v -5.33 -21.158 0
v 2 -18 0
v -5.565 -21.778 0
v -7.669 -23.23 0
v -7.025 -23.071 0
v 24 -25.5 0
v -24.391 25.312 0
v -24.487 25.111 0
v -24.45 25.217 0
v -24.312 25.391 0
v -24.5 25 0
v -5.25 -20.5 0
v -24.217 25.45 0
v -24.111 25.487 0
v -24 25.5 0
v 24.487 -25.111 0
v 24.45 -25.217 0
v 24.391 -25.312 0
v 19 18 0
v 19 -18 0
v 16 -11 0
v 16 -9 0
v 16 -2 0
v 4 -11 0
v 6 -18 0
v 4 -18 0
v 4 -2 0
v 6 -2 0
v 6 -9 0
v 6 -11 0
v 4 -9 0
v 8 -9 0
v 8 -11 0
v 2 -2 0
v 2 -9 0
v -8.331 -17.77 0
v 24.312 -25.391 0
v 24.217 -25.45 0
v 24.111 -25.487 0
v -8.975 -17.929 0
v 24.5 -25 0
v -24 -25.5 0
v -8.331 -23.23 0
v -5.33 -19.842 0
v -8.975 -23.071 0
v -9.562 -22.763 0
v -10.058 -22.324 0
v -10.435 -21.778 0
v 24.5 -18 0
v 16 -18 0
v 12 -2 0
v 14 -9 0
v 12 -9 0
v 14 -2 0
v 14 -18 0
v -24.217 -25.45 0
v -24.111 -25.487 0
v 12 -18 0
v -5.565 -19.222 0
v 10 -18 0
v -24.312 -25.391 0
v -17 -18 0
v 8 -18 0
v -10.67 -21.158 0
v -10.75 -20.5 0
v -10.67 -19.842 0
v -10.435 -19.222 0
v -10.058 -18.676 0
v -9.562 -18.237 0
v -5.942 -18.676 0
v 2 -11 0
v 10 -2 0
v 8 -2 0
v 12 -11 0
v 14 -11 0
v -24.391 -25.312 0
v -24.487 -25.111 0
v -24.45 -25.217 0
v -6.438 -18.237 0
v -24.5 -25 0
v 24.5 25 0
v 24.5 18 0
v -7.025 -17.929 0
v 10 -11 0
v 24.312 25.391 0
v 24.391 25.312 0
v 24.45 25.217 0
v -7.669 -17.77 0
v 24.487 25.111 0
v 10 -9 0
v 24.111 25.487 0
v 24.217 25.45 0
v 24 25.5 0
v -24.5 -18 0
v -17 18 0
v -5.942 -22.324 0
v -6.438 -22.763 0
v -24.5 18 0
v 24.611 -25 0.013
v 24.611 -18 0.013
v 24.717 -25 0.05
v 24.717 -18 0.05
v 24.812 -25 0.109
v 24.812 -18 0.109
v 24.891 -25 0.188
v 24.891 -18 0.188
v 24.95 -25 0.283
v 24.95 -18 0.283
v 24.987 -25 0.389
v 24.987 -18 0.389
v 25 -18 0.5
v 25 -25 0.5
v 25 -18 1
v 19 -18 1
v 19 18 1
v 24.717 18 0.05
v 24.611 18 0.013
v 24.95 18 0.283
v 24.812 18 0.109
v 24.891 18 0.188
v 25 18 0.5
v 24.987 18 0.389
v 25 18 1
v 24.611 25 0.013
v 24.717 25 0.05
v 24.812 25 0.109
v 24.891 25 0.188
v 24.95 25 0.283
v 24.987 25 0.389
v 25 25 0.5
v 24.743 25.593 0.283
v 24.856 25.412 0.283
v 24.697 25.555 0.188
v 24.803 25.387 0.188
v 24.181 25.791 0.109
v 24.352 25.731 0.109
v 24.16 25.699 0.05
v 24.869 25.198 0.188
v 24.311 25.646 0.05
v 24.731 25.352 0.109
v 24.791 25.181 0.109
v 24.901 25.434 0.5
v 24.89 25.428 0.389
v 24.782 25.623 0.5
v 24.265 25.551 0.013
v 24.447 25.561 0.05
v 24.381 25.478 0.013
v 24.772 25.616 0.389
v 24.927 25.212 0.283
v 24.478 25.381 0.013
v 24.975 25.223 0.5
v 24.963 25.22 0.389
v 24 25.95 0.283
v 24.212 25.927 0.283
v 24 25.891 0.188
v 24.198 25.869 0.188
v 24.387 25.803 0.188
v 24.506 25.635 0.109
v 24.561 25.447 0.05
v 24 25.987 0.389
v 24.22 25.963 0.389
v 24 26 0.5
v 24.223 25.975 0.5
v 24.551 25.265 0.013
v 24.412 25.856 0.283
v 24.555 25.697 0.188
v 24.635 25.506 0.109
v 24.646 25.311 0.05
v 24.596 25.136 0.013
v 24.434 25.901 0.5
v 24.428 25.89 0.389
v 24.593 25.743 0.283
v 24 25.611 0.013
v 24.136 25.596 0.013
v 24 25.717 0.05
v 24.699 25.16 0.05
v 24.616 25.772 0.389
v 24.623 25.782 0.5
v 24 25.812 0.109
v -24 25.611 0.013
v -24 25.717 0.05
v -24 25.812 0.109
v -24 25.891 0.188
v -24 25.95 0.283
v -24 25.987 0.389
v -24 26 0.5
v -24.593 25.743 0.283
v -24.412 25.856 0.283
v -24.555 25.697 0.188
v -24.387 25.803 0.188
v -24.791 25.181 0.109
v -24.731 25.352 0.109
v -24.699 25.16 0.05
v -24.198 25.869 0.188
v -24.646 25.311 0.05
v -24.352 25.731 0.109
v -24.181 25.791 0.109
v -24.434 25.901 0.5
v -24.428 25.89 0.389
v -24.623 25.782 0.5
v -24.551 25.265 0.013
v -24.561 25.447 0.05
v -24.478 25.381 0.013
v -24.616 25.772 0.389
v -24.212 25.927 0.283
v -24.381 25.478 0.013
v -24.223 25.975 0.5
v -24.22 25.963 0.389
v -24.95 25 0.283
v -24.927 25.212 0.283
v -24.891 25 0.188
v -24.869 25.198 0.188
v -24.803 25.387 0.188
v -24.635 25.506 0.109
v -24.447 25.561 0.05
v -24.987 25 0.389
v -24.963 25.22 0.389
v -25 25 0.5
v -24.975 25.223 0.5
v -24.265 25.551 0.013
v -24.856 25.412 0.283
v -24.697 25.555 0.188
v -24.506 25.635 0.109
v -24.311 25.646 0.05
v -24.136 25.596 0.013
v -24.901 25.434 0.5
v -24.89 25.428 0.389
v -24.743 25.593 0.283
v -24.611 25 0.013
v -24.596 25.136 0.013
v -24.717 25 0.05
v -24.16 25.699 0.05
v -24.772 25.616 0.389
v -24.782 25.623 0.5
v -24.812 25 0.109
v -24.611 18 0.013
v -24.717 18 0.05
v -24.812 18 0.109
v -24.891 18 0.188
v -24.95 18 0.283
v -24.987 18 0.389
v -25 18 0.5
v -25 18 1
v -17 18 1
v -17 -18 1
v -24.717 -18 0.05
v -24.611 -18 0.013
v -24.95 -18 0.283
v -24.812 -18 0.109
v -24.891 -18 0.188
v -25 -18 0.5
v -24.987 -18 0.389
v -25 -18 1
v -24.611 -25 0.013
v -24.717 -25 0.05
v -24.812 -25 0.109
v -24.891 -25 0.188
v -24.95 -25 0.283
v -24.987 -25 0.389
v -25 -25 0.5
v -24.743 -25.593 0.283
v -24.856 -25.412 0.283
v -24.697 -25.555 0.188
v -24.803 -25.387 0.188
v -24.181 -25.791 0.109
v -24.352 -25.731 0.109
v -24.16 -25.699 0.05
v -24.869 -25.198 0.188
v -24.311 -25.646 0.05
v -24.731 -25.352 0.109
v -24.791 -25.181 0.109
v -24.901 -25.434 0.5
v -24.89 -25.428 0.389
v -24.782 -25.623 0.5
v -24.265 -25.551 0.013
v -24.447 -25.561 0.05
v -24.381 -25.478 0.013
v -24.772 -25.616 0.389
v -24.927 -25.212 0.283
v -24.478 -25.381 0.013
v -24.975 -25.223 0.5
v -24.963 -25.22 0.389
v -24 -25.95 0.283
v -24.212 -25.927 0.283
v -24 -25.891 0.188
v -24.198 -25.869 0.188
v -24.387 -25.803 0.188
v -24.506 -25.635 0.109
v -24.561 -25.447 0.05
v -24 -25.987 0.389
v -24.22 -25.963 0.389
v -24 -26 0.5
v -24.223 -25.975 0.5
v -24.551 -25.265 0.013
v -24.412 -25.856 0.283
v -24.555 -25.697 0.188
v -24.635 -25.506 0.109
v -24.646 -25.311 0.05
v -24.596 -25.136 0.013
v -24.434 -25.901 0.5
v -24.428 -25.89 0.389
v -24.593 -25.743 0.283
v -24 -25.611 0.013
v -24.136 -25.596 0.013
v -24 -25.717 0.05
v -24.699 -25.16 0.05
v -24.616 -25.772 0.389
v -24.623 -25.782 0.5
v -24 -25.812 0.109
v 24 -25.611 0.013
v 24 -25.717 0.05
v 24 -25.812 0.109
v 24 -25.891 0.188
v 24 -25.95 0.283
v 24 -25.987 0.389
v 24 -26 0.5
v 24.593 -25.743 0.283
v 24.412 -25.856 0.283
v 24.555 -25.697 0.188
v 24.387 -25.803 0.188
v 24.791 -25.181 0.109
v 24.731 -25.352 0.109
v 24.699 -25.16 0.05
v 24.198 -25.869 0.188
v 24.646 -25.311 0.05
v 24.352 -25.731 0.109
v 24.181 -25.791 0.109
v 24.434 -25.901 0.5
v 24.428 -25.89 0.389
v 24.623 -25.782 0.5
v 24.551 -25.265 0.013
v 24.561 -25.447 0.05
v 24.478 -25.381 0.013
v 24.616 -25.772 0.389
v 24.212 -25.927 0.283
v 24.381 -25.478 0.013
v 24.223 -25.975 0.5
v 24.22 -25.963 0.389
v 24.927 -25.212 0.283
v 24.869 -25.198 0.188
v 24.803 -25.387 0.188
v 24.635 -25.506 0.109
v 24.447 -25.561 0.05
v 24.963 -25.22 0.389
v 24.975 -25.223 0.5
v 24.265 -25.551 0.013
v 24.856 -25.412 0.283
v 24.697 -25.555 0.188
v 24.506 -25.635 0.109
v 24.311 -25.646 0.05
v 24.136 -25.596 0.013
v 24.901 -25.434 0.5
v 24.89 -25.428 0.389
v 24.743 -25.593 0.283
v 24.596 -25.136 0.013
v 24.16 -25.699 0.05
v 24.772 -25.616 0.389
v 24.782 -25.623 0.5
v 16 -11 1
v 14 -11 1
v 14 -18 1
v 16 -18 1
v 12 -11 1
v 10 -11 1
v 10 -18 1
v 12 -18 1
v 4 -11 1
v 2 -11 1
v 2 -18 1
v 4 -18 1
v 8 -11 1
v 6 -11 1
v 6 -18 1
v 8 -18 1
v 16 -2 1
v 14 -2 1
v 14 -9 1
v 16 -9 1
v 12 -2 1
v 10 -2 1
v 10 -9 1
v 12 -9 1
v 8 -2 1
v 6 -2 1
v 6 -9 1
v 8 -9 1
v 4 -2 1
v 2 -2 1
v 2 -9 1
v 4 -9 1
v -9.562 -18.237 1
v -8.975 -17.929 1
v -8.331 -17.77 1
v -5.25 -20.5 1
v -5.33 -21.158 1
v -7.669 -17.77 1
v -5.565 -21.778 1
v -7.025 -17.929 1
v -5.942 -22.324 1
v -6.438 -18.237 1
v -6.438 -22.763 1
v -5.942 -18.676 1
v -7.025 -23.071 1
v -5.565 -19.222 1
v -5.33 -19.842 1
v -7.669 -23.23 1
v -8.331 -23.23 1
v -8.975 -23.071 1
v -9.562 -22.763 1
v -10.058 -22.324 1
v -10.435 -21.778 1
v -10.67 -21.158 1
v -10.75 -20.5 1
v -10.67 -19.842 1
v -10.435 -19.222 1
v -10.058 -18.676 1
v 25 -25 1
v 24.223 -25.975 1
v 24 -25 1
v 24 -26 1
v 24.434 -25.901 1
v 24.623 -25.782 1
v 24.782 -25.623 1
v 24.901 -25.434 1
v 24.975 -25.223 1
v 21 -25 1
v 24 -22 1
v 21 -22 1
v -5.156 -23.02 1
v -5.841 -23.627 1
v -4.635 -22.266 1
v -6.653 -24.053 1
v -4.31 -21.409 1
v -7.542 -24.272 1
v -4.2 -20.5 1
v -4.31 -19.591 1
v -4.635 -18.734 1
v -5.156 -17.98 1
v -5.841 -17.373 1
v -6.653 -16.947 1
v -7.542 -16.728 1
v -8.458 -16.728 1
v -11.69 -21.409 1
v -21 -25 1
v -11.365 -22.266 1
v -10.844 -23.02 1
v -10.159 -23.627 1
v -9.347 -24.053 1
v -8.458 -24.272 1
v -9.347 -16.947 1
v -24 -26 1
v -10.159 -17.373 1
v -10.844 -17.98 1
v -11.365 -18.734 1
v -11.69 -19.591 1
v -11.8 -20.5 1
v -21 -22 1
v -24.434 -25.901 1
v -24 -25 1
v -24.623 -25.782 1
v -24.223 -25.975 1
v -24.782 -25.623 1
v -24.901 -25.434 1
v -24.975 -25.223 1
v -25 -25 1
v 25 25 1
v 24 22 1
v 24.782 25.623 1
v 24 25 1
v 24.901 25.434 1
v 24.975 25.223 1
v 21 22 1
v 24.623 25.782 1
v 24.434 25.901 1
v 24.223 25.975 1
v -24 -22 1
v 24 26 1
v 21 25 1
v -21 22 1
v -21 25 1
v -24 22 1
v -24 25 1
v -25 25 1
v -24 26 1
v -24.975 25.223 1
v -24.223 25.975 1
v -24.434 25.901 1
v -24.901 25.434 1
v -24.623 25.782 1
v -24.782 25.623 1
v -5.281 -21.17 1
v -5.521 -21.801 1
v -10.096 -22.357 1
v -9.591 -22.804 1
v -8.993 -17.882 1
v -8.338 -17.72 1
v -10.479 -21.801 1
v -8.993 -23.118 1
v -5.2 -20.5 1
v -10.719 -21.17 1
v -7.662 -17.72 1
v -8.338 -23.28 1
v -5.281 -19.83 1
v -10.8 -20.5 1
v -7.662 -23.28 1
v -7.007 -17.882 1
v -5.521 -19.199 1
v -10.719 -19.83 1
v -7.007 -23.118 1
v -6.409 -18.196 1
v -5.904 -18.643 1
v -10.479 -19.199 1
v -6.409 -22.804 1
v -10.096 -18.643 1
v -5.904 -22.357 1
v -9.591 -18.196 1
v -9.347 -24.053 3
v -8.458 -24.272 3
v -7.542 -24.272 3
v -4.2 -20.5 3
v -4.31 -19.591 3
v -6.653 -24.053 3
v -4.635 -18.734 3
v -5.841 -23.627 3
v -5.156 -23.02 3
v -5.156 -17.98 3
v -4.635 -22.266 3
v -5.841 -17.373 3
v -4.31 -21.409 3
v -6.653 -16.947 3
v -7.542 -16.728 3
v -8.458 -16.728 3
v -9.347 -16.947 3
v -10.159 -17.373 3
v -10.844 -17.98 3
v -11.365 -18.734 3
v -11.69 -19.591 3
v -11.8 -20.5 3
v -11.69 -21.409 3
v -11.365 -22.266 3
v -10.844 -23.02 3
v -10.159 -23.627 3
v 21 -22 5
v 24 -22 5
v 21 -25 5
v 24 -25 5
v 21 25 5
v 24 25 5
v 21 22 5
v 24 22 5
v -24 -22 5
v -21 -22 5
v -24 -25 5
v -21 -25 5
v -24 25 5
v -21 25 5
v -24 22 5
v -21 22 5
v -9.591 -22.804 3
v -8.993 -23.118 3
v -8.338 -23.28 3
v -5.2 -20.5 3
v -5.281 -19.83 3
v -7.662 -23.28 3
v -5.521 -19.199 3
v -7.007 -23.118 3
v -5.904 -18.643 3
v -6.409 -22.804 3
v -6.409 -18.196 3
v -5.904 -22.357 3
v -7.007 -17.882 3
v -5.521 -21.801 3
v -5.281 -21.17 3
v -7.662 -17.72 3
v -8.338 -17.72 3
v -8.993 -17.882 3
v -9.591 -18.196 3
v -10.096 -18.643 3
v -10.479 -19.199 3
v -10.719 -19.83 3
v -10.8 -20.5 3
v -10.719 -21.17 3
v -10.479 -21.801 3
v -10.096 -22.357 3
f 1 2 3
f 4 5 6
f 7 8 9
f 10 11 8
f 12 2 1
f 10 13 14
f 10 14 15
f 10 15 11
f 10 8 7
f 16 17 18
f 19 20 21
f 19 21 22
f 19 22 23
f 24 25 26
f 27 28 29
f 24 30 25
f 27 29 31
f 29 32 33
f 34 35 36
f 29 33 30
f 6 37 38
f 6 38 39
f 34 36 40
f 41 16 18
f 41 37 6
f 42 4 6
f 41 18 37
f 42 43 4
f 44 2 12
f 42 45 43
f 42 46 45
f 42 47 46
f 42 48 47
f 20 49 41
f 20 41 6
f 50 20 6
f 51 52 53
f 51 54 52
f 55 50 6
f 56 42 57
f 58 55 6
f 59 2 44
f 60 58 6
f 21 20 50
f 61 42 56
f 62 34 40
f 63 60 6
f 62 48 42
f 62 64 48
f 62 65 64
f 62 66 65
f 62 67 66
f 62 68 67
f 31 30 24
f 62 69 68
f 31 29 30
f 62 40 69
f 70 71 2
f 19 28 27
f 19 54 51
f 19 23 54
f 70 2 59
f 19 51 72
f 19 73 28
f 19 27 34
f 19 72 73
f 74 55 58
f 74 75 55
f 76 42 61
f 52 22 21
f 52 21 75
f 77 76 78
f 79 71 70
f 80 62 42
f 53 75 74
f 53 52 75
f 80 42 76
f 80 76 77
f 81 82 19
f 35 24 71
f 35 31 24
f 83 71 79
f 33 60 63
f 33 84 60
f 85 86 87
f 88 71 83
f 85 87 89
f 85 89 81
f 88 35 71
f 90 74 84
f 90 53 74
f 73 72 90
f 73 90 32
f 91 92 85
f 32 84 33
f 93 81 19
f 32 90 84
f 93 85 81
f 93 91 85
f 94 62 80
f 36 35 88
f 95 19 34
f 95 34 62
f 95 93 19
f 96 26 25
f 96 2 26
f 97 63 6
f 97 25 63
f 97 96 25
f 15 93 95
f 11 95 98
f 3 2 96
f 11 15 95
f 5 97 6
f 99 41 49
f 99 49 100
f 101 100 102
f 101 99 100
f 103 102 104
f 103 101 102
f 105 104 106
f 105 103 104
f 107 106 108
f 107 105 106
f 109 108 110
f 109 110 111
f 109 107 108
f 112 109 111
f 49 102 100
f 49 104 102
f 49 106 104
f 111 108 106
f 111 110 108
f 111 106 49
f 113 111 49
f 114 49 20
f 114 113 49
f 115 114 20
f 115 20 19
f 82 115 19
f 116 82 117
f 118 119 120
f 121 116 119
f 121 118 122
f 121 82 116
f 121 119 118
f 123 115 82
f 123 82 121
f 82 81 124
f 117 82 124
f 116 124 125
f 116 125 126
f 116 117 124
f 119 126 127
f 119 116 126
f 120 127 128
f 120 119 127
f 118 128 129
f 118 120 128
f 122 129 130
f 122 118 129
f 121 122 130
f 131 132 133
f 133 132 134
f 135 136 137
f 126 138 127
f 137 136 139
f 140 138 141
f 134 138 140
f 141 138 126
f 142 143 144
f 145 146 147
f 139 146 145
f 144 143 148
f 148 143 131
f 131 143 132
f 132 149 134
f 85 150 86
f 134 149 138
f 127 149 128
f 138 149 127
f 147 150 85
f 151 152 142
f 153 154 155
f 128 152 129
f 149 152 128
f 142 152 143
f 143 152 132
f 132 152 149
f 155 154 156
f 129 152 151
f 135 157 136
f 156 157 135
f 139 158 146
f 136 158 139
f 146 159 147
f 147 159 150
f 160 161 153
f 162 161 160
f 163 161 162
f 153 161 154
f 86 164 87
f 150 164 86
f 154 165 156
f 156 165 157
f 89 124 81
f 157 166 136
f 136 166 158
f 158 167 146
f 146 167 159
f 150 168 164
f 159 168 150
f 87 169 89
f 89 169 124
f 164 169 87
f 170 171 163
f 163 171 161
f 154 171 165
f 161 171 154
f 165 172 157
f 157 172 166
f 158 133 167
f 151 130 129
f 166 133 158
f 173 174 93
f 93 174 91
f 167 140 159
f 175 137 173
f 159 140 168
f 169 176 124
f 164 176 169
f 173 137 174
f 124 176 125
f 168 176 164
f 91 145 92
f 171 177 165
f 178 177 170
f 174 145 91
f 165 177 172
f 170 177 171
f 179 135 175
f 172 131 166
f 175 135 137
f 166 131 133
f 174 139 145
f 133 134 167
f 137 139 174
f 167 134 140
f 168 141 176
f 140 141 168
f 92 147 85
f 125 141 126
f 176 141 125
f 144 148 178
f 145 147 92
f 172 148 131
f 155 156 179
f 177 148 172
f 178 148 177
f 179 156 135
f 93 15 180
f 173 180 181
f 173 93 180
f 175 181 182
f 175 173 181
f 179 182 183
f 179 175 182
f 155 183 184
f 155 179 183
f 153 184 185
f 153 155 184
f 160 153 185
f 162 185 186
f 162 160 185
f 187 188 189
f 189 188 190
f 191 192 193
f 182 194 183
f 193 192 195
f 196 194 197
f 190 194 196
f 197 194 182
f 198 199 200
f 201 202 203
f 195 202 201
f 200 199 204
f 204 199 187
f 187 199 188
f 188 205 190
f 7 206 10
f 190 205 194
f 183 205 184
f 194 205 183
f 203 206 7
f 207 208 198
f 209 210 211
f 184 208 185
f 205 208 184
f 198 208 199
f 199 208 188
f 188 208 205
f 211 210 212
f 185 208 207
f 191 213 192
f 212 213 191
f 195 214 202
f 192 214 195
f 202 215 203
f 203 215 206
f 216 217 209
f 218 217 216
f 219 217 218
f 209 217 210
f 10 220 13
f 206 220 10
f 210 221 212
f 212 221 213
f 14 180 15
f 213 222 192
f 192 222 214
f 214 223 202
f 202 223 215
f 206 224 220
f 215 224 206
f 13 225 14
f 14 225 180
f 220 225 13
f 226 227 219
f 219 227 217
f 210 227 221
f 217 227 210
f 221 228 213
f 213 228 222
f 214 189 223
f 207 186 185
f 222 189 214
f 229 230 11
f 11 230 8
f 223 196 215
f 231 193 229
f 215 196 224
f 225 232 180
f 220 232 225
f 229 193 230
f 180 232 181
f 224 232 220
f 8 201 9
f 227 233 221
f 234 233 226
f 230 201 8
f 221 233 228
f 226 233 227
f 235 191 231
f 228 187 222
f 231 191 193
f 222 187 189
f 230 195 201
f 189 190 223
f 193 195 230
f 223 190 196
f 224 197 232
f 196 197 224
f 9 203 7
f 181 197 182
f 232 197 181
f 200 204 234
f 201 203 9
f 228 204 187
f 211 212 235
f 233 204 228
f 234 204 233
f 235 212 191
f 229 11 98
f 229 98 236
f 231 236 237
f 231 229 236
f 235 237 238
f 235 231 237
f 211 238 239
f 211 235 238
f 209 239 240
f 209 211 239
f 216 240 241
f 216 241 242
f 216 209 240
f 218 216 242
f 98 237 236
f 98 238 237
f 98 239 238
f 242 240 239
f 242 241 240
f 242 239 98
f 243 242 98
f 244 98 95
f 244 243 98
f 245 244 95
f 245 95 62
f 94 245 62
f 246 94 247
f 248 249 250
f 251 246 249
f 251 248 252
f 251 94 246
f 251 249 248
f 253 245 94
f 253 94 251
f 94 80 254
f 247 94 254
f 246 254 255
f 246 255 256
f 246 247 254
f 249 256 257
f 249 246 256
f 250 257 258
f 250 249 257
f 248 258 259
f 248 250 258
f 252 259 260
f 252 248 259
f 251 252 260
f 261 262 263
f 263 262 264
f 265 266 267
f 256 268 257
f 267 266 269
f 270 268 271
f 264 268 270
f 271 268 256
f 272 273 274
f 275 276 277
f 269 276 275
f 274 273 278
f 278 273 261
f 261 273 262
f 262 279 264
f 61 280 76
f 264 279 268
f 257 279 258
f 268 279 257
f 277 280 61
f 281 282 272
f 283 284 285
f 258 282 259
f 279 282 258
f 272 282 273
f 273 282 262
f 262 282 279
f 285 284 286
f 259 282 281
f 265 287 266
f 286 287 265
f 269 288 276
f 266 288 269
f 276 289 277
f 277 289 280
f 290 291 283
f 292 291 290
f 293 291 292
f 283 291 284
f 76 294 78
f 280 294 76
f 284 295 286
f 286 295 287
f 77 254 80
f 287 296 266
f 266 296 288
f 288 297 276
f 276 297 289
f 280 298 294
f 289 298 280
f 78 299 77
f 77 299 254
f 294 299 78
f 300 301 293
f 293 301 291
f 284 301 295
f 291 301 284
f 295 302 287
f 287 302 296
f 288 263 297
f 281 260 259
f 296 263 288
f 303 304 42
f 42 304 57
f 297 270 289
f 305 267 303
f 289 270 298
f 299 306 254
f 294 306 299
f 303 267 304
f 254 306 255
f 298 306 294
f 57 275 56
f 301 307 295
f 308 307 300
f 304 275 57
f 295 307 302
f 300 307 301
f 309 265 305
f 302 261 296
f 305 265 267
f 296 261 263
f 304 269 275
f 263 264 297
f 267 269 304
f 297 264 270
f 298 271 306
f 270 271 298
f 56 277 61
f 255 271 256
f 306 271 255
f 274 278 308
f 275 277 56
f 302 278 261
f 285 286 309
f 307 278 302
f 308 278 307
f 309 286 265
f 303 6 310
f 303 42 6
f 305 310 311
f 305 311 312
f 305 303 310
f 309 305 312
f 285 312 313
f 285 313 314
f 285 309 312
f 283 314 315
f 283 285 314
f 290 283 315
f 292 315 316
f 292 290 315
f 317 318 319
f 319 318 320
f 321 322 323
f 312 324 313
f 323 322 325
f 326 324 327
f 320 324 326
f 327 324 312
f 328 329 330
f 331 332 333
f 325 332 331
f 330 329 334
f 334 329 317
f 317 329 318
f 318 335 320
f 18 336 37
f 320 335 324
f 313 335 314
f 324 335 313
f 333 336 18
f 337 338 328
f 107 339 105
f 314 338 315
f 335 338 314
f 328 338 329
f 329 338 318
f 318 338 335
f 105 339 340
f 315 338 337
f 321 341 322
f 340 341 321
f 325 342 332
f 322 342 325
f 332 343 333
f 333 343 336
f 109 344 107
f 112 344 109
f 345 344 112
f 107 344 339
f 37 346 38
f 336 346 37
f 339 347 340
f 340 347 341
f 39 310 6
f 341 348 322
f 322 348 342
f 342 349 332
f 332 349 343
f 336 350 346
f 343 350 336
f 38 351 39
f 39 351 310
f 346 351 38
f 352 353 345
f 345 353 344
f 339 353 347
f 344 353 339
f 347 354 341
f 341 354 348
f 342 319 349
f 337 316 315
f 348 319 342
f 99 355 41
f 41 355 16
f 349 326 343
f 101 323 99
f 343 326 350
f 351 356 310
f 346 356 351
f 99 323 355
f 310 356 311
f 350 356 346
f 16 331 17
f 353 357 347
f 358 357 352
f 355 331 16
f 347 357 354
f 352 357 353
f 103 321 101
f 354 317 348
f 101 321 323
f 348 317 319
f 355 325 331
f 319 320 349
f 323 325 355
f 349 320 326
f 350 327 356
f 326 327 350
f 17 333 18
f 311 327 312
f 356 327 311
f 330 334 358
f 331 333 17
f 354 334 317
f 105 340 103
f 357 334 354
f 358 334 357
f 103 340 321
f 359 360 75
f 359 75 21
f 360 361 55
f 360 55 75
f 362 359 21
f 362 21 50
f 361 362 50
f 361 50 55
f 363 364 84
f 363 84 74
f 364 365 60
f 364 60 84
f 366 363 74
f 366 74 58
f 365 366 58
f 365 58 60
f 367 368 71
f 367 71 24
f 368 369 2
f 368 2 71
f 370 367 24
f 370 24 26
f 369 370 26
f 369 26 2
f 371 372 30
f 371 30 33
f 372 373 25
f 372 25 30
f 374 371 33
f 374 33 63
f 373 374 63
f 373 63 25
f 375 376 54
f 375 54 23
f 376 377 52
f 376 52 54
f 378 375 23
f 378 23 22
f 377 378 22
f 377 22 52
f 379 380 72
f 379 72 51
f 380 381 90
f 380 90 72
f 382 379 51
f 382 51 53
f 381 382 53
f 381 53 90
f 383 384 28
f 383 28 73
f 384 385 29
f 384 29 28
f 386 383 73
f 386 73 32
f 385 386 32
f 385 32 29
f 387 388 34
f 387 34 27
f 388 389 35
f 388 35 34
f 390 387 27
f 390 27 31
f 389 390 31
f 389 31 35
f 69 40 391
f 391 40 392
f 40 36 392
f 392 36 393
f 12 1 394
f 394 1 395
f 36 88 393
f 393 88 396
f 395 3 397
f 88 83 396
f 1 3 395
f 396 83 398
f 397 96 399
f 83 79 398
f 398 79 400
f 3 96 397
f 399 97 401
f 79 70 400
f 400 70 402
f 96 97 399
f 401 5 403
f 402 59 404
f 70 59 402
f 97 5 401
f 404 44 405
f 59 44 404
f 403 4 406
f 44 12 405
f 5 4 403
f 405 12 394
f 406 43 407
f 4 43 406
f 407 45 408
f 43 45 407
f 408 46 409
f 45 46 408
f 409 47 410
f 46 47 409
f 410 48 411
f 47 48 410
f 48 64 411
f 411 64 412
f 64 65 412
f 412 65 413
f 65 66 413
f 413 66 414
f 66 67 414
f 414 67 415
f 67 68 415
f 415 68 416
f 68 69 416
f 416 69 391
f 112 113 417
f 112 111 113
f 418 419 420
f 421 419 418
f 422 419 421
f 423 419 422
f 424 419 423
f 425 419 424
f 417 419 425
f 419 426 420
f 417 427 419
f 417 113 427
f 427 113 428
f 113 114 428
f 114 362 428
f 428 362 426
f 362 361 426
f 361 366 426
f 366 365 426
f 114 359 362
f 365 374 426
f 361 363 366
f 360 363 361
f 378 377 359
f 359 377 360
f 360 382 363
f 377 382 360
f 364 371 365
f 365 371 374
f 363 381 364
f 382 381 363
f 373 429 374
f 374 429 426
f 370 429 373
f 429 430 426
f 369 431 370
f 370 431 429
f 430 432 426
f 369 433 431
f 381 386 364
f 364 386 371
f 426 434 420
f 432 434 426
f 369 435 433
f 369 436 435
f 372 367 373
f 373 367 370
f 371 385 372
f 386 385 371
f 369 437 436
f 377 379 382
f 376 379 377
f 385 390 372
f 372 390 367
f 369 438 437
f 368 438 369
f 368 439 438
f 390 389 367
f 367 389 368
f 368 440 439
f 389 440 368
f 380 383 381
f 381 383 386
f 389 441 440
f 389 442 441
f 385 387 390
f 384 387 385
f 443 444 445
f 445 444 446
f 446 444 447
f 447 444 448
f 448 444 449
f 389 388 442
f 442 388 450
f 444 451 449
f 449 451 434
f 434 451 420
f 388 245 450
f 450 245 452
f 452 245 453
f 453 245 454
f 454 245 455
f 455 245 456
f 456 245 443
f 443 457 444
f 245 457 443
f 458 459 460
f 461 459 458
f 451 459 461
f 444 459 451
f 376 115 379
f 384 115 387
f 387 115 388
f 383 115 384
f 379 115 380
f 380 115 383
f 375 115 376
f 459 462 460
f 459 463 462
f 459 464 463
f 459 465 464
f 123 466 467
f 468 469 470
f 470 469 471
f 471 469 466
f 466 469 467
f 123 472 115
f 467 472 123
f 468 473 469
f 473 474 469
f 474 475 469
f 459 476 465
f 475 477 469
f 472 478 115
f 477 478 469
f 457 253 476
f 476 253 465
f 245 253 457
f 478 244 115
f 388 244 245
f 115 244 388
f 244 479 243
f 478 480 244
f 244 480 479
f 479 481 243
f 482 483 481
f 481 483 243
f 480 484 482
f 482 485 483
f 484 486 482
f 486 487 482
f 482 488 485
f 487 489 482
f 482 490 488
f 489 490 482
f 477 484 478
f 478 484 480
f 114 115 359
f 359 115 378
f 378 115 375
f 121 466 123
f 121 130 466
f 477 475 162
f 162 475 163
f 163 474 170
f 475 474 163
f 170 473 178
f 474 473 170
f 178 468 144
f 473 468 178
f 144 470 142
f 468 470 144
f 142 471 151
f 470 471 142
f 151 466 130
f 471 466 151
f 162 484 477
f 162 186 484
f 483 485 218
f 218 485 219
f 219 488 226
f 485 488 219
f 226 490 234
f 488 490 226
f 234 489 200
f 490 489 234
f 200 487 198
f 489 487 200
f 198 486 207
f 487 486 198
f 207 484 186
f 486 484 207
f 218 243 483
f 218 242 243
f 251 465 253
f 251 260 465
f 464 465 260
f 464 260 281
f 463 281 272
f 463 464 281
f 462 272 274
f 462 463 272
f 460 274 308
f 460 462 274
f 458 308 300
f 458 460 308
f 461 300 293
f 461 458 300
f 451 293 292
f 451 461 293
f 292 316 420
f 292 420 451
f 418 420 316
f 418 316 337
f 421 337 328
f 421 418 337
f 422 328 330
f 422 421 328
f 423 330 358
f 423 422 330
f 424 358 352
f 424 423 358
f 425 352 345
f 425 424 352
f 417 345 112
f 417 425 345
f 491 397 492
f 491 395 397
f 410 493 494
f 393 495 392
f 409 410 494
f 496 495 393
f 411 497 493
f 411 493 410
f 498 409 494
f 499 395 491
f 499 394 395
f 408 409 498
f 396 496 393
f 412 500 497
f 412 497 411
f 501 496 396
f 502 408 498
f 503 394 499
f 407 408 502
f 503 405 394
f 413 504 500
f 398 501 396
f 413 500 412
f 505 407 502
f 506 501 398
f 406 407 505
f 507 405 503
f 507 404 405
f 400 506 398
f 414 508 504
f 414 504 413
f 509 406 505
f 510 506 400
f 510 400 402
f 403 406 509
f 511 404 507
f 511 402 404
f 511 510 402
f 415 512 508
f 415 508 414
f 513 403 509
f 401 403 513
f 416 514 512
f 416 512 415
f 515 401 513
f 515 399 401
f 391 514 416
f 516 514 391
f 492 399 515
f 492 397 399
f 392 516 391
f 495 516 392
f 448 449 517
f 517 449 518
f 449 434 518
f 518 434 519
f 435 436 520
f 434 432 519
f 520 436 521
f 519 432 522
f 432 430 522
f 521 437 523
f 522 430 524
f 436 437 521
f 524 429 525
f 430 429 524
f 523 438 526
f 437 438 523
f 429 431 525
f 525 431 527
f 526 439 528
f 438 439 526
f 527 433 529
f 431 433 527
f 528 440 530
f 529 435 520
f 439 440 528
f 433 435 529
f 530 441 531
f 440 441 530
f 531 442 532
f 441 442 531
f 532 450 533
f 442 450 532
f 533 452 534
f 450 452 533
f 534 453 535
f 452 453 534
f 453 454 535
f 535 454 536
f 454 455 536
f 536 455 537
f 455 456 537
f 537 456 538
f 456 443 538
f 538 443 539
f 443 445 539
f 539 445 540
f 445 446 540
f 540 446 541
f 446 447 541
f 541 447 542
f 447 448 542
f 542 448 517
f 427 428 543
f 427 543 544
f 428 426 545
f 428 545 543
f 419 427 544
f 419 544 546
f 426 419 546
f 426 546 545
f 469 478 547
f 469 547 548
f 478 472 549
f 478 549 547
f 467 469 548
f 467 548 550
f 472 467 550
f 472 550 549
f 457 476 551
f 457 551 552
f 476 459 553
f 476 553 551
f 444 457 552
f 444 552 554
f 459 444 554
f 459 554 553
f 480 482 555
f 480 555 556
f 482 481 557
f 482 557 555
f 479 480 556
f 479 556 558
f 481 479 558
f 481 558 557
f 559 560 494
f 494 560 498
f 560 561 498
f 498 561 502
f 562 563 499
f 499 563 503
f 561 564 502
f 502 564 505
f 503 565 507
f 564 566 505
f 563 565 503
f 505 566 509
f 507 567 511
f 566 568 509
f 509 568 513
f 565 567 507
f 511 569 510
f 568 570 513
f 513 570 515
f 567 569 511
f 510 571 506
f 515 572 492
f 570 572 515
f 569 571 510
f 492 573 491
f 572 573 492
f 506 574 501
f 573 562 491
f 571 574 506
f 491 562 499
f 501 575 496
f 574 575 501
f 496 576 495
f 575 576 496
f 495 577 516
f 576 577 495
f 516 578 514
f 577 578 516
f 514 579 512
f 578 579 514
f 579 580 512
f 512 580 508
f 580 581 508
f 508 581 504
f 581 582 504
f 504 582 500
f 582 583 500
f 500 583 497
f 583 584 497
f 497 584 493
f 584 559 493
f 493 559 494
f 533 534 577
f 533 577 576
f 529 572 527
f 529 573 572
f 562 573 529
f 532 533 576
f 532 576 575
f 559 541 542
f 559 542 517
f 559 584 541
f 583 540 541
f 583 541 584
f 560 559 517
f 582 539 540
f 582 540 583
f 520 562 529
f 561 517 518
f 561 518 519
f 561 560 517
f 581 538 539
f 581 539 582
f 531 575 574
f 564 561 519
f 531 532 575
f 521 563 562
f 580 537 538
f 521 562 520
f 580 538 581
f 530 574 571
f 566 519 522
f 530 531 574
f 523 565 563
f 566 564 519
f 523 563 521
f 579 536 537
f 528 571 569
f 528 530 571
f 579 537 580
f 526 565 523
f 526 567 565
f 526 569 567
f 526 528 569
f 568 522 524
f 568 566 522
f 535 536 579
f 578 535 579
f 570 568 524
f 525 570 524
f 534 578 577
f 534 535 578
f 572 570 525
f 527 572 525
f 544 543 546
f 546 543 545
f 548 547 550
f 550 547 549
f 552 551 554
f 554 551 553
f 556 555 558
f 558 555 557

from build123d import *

# Parameters (mm, degrees)
SKETCH_W        = 50
SKETCH_H        = 52
PAD_DEPTH       = 1
SKETCH001_W     = 3
SKETCH001_H     = 3
PAD001_DEPTH    = 4
FILLET_R        = 1
FILLET001_R     = 1
FILLET002_R     = 1
FILLET003_R     = 1
SKETCH002_R     = 2.75
POCKET_DEPTH    = 1
SKETCH003_W     = 2
SKETCH003_H     = 7
POCKET001_DEPTH = 1
FILLET004_R     = 0.5
SKETCH004_R     = 3.8
PAD002_DEPTH    = 2
SKETCH005_R     = 2.8
POCKET002_DEPTH = 2
SKETCH006_W     = 8
SKETCH006_H     = 36
POCKET003_DEPTH = 1
SKETCH007_W     = 6
SKETCH007_H     = 36
POCKET004_DEPTH = 1


with BuildPart() as part:
    # Sketch → Pad (new body)
    with BuildSketch(Plane.XY):
        Rectangle(SKETCH_W, SKETCH_H)
    extrude(amount=PAD_DEPTH)

    # Sketch001 (on Face6 of Pad) → Pad001 (join)
    with BuildSketch(Plane.XY.offset(1)):
        with Locations((-22.5, 23.5)):
            Rectangle(SKETCH001_W, SKETCH001_H)
        with Locations((22.5, 23.5)):
            Rectangle(SKETCH001_W, SKETCH001_H)
        with Locations((-22.5, -23.5)):
            Rectangle(SKETCH001_W, SKETCH001_H)
        with Locations((22.5, -23.5)):
            Rectangle(SKETCH001_W, SKETCH001_H)
    extrude(amount=PAD001_DEPTH)

    # Fillet
    fillet_edges = [part.edges().sort_by_distance(p)[0] for p in [
        (-25, -26, 0.5),
    ]]
    fillet(fillet_edges, radius=FILLET_R)

    # Fillet001
    fillet001_edges = [part.edges().sort_by_distance(p)[0] for p in [
        (25, -26, 0.5),
    ]]
    fillet(fillet001_edges, radius=FILLET001_R)

    # Fillet002
    fillet002_edges = [part.edges().sort_by_distance(p)[0] for p in [
        (-25, 26, 0.5),
    ]]
    fillet(fillet002_edges, radius=FILLET002_R)

    # Fillet003
    fillet003_edges = [part.edges().sort_by_distance(p)[0] for p in [
        (25, 26, 0.5),
    ]]
    fillet(fillet003_edges, radius=FILLET003_R)

    # Sketch002 (on Face1 of Fillet003) → Pocket (cut)
    with BuildSketch(Plane(origin=(0, 0, 0), x_dir=(1, 0, 0), z_dir=(0, 0, -1))):
        with Locations((-8, 20.5)):
            Circle(SKETCH002_R)
    extrude(amount=-POCKET_DEPTH, mode=Mode.SUBTRACT)

    # Sketch003 (on Face11 of Pocket) → Pocket001 (cut)
    with BuildSketch(Plane.XY.offset(1)):
        with Locations((15, -14.5)):
            Rectangle(SKETCH003_W, SKETCH003_H)
        with Locations((15, -5.5)):
            Rectangle(SKETCH003_W, SKETCH003_H)
        with Locations((11, -5.5)):
            Rectangle(SKETCH003_W, SKETCH003_H)
        with Locations((11, -14.5)):
            Rectangle(SKETCH003_W, SKETCH003_H)
        with Locations((7, -5.5)):
            Rectangle(SKETCH003_W, SKETCH003_H)
        with Locations((7, -14.5)):
            Rectangle(SKETCH003_W, SKETCH003_H)
        with Locations((3, -5.5)):
            Rectangle(SKETCH003_W, SKETCH003_H)
        with Locations((3, -14.5)):
            Rectangle(SKETCH003_W, SKETCH003_H)
    extrude(amount=-POCKET001_DEPTH, mode=Mode.SUBTRACT)

    # Fillet004
    fillet004_edges = [part.edges().sort_by_distance(p)[0] for p in [
        (0, -26, 0),
        (25, 0, 0),
        (-25, 0, 0),
        (0, 26, 0),
    ]]
    fillet(fillet004_edges, radius=FILLET004_R)

    # Sketch004 (on Face51 of Fillet004) → Pad002 (join)
    with BuildSketch(Plane.XY.offset(1)):
        with Locations((-8, -20.5)):
            Circle(SKETCH004_R)
    extrude(amount=PAD002_DEPTH)

    # Sketch005 (on Face71 of Pad002) → Pocket002 (cut)
    with BuildSketch(Plane.XY.offset(3)):
        with Locations((-8, -20.5)):
            Circle(SKETCH005_R)
    extrude(amount=-POCKET002_DEPTH, mode=Mode.SUBTRACT)

    # Sketch006 (on Face51 of Pocket002) → Pocket003 (cut)
    with BuildSketch(Plane.XY.offset(1)):
        with Locations((-21, 0)):
            Rectangle(SKETCH006_W, SKETCH006_H)
    extrude(amount=-POCKET003_DEPTH, mode=Mode.SUBTRACT)

    # Sketch007 (on Face53 of Pocket003) → Pocket004 (cut)
    with BuildSketch(Plane.XY.offset(1)):
        with Locations((22, 0)):
            Rectangle(SKETCH007_W, SKETCH007_H)
    extrude(amount=-POCKET004_DEPTH, mode=Mode.SUBTRACT)


solid = part.part
